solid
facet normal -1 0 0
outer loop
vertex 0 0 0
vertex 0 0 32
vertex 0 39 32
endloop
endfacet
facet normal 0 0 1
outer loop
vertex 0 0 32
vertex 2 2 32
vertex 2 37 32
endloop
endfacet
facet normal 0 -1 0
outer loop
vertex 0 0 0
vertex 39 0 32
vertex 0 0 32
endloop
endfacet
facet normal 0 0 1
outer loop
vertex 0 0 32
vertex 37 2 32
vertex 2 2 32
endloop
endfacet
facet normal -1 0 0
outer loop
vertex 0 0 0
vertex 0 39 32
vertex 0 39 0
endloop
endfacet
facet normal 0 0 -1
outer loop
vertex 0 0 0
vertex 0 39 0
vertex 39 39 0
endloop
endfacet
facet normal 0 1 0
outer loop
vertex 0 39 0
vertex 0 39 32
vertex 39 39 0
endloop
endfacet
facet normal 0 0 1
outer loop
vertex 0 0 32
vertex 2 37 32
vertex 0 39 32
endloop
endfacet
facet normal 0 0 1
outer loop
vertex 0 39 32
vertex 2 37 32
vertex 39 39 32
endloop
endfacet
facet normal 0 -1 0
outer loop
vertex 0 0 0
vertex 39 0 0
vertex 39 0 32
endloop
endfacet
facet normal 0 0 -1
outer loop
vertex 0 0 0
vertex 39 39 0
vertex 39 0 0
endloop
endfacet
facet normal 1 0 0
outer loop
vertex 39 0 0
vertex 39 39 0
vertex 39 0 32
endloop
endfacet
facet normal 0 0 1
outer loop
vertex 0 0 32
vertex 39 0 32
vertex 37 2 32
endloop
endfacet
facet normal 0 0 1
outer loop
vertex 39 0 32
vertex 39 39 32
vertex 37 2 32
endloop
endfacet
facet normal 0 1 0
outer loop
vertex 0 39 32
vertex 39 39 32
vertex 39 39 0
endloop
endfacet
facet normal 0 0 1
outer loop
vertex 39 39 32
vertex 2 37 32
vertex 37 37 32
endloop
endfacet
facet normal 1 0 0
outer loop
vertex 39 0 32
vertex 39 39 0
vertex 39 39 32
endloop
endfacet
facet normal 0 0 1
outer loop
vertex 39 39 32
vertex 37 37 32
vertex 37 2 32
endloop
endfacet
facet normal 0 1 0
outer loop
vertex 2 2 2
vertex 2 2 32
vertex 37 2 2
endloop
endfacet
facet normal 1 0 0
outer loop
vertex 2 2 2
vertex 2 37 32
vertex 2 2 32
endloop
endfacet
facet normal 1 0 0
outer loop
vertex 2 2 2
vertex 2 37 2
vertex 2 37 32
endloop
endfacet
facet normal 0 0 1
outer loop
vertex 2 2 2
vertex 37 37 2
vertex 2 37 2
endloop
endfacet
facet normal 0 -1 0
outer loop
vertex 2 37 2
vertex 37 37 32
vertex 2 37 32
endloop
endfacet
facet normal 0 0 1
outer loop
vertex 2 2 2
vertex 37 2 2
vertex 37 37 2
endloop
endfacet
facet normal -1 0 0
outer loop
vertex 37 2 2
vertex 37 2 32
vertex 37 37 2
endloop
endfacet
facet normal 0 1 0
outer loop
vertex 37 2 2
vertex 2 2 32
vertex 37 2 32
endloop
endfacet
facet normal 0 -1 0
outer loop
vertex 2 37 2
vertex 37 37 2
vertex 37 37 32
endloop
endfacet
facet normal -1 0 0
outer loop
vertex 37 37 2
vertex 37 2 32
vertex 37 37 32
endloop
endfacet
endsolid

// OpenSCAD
// Title: Открытый куб (Open Box)
// Description: Параметрическая модель куба с одной открытой стороной.
// Author: AI Assistant
// Date: 2024-05-21
// License: MIT

/* =====================================================================
 *                        ПАРАМЕТРЫ / PARAMETERS
 * ===================================================================== */

// Внутренние размеры полости куба [ширина, глубина, высота] в мм.
inner_dimensions = [35, 35, 30]; 

// Толщина стенок и дна в мм.
wall_thickness = 2;


/* =====================================================================
 *                          МОДУЛИ / MODULES
 * ===================================================================== */

/**
 * open_box()
 * Создает куб с заданными внутренними размерами и толщиной стенок,
 * открытый сверху (по оси Z).
 */
module open_box() {
    // Рассчитываем внешние размеры на основе внутренних и толщины стенок.
    // Для ширины и глубины добавляем толщину двух стенок (слева/справа, спереди/сзади).
    outer_width  = inner_dimensions[0] + 2 * wall_thickness;
    outer_depth  = inner_dimensions[1] + 2 * wall_thickness;
    // Для высоты добавляем только толщину дна, так как верх открыт.
    outer_height = inner_dimensions[2] + wall_thickness;

    // Используем difference() для "выдалбливания" внутреннего пространства.
    difference() {
        // 1. Создаем внешний сплошной куб (основа).
        // Его угол находится в точке [0, 0, 0].
        cube([outer_width, outer_depth, outer_height]);
        
        // 2. Создаем внутренний куб для вырезания.
        // Он должен быть смещен, чтобы сформировать стенки и дно.
        translate([wall_thickness, wall_thickness, wall_thickness]) {
            // Внутренний куб имеет заданные размеры.
            // Делаем его немного выше, чем нужно, чтобы гарантировать
            // чистый и полный срез верхней части.
            cube([inner_dimensions[0], inner_dimensions[1], outer_height]);
        }
    }
}

/* =====================================================================
 *                      ОСНОВНОЙ КОД / MAIN CODE
 * ===================================================================== */

// Вызываем модуль для создания и отображения нашего открытого куба.
open_box();
